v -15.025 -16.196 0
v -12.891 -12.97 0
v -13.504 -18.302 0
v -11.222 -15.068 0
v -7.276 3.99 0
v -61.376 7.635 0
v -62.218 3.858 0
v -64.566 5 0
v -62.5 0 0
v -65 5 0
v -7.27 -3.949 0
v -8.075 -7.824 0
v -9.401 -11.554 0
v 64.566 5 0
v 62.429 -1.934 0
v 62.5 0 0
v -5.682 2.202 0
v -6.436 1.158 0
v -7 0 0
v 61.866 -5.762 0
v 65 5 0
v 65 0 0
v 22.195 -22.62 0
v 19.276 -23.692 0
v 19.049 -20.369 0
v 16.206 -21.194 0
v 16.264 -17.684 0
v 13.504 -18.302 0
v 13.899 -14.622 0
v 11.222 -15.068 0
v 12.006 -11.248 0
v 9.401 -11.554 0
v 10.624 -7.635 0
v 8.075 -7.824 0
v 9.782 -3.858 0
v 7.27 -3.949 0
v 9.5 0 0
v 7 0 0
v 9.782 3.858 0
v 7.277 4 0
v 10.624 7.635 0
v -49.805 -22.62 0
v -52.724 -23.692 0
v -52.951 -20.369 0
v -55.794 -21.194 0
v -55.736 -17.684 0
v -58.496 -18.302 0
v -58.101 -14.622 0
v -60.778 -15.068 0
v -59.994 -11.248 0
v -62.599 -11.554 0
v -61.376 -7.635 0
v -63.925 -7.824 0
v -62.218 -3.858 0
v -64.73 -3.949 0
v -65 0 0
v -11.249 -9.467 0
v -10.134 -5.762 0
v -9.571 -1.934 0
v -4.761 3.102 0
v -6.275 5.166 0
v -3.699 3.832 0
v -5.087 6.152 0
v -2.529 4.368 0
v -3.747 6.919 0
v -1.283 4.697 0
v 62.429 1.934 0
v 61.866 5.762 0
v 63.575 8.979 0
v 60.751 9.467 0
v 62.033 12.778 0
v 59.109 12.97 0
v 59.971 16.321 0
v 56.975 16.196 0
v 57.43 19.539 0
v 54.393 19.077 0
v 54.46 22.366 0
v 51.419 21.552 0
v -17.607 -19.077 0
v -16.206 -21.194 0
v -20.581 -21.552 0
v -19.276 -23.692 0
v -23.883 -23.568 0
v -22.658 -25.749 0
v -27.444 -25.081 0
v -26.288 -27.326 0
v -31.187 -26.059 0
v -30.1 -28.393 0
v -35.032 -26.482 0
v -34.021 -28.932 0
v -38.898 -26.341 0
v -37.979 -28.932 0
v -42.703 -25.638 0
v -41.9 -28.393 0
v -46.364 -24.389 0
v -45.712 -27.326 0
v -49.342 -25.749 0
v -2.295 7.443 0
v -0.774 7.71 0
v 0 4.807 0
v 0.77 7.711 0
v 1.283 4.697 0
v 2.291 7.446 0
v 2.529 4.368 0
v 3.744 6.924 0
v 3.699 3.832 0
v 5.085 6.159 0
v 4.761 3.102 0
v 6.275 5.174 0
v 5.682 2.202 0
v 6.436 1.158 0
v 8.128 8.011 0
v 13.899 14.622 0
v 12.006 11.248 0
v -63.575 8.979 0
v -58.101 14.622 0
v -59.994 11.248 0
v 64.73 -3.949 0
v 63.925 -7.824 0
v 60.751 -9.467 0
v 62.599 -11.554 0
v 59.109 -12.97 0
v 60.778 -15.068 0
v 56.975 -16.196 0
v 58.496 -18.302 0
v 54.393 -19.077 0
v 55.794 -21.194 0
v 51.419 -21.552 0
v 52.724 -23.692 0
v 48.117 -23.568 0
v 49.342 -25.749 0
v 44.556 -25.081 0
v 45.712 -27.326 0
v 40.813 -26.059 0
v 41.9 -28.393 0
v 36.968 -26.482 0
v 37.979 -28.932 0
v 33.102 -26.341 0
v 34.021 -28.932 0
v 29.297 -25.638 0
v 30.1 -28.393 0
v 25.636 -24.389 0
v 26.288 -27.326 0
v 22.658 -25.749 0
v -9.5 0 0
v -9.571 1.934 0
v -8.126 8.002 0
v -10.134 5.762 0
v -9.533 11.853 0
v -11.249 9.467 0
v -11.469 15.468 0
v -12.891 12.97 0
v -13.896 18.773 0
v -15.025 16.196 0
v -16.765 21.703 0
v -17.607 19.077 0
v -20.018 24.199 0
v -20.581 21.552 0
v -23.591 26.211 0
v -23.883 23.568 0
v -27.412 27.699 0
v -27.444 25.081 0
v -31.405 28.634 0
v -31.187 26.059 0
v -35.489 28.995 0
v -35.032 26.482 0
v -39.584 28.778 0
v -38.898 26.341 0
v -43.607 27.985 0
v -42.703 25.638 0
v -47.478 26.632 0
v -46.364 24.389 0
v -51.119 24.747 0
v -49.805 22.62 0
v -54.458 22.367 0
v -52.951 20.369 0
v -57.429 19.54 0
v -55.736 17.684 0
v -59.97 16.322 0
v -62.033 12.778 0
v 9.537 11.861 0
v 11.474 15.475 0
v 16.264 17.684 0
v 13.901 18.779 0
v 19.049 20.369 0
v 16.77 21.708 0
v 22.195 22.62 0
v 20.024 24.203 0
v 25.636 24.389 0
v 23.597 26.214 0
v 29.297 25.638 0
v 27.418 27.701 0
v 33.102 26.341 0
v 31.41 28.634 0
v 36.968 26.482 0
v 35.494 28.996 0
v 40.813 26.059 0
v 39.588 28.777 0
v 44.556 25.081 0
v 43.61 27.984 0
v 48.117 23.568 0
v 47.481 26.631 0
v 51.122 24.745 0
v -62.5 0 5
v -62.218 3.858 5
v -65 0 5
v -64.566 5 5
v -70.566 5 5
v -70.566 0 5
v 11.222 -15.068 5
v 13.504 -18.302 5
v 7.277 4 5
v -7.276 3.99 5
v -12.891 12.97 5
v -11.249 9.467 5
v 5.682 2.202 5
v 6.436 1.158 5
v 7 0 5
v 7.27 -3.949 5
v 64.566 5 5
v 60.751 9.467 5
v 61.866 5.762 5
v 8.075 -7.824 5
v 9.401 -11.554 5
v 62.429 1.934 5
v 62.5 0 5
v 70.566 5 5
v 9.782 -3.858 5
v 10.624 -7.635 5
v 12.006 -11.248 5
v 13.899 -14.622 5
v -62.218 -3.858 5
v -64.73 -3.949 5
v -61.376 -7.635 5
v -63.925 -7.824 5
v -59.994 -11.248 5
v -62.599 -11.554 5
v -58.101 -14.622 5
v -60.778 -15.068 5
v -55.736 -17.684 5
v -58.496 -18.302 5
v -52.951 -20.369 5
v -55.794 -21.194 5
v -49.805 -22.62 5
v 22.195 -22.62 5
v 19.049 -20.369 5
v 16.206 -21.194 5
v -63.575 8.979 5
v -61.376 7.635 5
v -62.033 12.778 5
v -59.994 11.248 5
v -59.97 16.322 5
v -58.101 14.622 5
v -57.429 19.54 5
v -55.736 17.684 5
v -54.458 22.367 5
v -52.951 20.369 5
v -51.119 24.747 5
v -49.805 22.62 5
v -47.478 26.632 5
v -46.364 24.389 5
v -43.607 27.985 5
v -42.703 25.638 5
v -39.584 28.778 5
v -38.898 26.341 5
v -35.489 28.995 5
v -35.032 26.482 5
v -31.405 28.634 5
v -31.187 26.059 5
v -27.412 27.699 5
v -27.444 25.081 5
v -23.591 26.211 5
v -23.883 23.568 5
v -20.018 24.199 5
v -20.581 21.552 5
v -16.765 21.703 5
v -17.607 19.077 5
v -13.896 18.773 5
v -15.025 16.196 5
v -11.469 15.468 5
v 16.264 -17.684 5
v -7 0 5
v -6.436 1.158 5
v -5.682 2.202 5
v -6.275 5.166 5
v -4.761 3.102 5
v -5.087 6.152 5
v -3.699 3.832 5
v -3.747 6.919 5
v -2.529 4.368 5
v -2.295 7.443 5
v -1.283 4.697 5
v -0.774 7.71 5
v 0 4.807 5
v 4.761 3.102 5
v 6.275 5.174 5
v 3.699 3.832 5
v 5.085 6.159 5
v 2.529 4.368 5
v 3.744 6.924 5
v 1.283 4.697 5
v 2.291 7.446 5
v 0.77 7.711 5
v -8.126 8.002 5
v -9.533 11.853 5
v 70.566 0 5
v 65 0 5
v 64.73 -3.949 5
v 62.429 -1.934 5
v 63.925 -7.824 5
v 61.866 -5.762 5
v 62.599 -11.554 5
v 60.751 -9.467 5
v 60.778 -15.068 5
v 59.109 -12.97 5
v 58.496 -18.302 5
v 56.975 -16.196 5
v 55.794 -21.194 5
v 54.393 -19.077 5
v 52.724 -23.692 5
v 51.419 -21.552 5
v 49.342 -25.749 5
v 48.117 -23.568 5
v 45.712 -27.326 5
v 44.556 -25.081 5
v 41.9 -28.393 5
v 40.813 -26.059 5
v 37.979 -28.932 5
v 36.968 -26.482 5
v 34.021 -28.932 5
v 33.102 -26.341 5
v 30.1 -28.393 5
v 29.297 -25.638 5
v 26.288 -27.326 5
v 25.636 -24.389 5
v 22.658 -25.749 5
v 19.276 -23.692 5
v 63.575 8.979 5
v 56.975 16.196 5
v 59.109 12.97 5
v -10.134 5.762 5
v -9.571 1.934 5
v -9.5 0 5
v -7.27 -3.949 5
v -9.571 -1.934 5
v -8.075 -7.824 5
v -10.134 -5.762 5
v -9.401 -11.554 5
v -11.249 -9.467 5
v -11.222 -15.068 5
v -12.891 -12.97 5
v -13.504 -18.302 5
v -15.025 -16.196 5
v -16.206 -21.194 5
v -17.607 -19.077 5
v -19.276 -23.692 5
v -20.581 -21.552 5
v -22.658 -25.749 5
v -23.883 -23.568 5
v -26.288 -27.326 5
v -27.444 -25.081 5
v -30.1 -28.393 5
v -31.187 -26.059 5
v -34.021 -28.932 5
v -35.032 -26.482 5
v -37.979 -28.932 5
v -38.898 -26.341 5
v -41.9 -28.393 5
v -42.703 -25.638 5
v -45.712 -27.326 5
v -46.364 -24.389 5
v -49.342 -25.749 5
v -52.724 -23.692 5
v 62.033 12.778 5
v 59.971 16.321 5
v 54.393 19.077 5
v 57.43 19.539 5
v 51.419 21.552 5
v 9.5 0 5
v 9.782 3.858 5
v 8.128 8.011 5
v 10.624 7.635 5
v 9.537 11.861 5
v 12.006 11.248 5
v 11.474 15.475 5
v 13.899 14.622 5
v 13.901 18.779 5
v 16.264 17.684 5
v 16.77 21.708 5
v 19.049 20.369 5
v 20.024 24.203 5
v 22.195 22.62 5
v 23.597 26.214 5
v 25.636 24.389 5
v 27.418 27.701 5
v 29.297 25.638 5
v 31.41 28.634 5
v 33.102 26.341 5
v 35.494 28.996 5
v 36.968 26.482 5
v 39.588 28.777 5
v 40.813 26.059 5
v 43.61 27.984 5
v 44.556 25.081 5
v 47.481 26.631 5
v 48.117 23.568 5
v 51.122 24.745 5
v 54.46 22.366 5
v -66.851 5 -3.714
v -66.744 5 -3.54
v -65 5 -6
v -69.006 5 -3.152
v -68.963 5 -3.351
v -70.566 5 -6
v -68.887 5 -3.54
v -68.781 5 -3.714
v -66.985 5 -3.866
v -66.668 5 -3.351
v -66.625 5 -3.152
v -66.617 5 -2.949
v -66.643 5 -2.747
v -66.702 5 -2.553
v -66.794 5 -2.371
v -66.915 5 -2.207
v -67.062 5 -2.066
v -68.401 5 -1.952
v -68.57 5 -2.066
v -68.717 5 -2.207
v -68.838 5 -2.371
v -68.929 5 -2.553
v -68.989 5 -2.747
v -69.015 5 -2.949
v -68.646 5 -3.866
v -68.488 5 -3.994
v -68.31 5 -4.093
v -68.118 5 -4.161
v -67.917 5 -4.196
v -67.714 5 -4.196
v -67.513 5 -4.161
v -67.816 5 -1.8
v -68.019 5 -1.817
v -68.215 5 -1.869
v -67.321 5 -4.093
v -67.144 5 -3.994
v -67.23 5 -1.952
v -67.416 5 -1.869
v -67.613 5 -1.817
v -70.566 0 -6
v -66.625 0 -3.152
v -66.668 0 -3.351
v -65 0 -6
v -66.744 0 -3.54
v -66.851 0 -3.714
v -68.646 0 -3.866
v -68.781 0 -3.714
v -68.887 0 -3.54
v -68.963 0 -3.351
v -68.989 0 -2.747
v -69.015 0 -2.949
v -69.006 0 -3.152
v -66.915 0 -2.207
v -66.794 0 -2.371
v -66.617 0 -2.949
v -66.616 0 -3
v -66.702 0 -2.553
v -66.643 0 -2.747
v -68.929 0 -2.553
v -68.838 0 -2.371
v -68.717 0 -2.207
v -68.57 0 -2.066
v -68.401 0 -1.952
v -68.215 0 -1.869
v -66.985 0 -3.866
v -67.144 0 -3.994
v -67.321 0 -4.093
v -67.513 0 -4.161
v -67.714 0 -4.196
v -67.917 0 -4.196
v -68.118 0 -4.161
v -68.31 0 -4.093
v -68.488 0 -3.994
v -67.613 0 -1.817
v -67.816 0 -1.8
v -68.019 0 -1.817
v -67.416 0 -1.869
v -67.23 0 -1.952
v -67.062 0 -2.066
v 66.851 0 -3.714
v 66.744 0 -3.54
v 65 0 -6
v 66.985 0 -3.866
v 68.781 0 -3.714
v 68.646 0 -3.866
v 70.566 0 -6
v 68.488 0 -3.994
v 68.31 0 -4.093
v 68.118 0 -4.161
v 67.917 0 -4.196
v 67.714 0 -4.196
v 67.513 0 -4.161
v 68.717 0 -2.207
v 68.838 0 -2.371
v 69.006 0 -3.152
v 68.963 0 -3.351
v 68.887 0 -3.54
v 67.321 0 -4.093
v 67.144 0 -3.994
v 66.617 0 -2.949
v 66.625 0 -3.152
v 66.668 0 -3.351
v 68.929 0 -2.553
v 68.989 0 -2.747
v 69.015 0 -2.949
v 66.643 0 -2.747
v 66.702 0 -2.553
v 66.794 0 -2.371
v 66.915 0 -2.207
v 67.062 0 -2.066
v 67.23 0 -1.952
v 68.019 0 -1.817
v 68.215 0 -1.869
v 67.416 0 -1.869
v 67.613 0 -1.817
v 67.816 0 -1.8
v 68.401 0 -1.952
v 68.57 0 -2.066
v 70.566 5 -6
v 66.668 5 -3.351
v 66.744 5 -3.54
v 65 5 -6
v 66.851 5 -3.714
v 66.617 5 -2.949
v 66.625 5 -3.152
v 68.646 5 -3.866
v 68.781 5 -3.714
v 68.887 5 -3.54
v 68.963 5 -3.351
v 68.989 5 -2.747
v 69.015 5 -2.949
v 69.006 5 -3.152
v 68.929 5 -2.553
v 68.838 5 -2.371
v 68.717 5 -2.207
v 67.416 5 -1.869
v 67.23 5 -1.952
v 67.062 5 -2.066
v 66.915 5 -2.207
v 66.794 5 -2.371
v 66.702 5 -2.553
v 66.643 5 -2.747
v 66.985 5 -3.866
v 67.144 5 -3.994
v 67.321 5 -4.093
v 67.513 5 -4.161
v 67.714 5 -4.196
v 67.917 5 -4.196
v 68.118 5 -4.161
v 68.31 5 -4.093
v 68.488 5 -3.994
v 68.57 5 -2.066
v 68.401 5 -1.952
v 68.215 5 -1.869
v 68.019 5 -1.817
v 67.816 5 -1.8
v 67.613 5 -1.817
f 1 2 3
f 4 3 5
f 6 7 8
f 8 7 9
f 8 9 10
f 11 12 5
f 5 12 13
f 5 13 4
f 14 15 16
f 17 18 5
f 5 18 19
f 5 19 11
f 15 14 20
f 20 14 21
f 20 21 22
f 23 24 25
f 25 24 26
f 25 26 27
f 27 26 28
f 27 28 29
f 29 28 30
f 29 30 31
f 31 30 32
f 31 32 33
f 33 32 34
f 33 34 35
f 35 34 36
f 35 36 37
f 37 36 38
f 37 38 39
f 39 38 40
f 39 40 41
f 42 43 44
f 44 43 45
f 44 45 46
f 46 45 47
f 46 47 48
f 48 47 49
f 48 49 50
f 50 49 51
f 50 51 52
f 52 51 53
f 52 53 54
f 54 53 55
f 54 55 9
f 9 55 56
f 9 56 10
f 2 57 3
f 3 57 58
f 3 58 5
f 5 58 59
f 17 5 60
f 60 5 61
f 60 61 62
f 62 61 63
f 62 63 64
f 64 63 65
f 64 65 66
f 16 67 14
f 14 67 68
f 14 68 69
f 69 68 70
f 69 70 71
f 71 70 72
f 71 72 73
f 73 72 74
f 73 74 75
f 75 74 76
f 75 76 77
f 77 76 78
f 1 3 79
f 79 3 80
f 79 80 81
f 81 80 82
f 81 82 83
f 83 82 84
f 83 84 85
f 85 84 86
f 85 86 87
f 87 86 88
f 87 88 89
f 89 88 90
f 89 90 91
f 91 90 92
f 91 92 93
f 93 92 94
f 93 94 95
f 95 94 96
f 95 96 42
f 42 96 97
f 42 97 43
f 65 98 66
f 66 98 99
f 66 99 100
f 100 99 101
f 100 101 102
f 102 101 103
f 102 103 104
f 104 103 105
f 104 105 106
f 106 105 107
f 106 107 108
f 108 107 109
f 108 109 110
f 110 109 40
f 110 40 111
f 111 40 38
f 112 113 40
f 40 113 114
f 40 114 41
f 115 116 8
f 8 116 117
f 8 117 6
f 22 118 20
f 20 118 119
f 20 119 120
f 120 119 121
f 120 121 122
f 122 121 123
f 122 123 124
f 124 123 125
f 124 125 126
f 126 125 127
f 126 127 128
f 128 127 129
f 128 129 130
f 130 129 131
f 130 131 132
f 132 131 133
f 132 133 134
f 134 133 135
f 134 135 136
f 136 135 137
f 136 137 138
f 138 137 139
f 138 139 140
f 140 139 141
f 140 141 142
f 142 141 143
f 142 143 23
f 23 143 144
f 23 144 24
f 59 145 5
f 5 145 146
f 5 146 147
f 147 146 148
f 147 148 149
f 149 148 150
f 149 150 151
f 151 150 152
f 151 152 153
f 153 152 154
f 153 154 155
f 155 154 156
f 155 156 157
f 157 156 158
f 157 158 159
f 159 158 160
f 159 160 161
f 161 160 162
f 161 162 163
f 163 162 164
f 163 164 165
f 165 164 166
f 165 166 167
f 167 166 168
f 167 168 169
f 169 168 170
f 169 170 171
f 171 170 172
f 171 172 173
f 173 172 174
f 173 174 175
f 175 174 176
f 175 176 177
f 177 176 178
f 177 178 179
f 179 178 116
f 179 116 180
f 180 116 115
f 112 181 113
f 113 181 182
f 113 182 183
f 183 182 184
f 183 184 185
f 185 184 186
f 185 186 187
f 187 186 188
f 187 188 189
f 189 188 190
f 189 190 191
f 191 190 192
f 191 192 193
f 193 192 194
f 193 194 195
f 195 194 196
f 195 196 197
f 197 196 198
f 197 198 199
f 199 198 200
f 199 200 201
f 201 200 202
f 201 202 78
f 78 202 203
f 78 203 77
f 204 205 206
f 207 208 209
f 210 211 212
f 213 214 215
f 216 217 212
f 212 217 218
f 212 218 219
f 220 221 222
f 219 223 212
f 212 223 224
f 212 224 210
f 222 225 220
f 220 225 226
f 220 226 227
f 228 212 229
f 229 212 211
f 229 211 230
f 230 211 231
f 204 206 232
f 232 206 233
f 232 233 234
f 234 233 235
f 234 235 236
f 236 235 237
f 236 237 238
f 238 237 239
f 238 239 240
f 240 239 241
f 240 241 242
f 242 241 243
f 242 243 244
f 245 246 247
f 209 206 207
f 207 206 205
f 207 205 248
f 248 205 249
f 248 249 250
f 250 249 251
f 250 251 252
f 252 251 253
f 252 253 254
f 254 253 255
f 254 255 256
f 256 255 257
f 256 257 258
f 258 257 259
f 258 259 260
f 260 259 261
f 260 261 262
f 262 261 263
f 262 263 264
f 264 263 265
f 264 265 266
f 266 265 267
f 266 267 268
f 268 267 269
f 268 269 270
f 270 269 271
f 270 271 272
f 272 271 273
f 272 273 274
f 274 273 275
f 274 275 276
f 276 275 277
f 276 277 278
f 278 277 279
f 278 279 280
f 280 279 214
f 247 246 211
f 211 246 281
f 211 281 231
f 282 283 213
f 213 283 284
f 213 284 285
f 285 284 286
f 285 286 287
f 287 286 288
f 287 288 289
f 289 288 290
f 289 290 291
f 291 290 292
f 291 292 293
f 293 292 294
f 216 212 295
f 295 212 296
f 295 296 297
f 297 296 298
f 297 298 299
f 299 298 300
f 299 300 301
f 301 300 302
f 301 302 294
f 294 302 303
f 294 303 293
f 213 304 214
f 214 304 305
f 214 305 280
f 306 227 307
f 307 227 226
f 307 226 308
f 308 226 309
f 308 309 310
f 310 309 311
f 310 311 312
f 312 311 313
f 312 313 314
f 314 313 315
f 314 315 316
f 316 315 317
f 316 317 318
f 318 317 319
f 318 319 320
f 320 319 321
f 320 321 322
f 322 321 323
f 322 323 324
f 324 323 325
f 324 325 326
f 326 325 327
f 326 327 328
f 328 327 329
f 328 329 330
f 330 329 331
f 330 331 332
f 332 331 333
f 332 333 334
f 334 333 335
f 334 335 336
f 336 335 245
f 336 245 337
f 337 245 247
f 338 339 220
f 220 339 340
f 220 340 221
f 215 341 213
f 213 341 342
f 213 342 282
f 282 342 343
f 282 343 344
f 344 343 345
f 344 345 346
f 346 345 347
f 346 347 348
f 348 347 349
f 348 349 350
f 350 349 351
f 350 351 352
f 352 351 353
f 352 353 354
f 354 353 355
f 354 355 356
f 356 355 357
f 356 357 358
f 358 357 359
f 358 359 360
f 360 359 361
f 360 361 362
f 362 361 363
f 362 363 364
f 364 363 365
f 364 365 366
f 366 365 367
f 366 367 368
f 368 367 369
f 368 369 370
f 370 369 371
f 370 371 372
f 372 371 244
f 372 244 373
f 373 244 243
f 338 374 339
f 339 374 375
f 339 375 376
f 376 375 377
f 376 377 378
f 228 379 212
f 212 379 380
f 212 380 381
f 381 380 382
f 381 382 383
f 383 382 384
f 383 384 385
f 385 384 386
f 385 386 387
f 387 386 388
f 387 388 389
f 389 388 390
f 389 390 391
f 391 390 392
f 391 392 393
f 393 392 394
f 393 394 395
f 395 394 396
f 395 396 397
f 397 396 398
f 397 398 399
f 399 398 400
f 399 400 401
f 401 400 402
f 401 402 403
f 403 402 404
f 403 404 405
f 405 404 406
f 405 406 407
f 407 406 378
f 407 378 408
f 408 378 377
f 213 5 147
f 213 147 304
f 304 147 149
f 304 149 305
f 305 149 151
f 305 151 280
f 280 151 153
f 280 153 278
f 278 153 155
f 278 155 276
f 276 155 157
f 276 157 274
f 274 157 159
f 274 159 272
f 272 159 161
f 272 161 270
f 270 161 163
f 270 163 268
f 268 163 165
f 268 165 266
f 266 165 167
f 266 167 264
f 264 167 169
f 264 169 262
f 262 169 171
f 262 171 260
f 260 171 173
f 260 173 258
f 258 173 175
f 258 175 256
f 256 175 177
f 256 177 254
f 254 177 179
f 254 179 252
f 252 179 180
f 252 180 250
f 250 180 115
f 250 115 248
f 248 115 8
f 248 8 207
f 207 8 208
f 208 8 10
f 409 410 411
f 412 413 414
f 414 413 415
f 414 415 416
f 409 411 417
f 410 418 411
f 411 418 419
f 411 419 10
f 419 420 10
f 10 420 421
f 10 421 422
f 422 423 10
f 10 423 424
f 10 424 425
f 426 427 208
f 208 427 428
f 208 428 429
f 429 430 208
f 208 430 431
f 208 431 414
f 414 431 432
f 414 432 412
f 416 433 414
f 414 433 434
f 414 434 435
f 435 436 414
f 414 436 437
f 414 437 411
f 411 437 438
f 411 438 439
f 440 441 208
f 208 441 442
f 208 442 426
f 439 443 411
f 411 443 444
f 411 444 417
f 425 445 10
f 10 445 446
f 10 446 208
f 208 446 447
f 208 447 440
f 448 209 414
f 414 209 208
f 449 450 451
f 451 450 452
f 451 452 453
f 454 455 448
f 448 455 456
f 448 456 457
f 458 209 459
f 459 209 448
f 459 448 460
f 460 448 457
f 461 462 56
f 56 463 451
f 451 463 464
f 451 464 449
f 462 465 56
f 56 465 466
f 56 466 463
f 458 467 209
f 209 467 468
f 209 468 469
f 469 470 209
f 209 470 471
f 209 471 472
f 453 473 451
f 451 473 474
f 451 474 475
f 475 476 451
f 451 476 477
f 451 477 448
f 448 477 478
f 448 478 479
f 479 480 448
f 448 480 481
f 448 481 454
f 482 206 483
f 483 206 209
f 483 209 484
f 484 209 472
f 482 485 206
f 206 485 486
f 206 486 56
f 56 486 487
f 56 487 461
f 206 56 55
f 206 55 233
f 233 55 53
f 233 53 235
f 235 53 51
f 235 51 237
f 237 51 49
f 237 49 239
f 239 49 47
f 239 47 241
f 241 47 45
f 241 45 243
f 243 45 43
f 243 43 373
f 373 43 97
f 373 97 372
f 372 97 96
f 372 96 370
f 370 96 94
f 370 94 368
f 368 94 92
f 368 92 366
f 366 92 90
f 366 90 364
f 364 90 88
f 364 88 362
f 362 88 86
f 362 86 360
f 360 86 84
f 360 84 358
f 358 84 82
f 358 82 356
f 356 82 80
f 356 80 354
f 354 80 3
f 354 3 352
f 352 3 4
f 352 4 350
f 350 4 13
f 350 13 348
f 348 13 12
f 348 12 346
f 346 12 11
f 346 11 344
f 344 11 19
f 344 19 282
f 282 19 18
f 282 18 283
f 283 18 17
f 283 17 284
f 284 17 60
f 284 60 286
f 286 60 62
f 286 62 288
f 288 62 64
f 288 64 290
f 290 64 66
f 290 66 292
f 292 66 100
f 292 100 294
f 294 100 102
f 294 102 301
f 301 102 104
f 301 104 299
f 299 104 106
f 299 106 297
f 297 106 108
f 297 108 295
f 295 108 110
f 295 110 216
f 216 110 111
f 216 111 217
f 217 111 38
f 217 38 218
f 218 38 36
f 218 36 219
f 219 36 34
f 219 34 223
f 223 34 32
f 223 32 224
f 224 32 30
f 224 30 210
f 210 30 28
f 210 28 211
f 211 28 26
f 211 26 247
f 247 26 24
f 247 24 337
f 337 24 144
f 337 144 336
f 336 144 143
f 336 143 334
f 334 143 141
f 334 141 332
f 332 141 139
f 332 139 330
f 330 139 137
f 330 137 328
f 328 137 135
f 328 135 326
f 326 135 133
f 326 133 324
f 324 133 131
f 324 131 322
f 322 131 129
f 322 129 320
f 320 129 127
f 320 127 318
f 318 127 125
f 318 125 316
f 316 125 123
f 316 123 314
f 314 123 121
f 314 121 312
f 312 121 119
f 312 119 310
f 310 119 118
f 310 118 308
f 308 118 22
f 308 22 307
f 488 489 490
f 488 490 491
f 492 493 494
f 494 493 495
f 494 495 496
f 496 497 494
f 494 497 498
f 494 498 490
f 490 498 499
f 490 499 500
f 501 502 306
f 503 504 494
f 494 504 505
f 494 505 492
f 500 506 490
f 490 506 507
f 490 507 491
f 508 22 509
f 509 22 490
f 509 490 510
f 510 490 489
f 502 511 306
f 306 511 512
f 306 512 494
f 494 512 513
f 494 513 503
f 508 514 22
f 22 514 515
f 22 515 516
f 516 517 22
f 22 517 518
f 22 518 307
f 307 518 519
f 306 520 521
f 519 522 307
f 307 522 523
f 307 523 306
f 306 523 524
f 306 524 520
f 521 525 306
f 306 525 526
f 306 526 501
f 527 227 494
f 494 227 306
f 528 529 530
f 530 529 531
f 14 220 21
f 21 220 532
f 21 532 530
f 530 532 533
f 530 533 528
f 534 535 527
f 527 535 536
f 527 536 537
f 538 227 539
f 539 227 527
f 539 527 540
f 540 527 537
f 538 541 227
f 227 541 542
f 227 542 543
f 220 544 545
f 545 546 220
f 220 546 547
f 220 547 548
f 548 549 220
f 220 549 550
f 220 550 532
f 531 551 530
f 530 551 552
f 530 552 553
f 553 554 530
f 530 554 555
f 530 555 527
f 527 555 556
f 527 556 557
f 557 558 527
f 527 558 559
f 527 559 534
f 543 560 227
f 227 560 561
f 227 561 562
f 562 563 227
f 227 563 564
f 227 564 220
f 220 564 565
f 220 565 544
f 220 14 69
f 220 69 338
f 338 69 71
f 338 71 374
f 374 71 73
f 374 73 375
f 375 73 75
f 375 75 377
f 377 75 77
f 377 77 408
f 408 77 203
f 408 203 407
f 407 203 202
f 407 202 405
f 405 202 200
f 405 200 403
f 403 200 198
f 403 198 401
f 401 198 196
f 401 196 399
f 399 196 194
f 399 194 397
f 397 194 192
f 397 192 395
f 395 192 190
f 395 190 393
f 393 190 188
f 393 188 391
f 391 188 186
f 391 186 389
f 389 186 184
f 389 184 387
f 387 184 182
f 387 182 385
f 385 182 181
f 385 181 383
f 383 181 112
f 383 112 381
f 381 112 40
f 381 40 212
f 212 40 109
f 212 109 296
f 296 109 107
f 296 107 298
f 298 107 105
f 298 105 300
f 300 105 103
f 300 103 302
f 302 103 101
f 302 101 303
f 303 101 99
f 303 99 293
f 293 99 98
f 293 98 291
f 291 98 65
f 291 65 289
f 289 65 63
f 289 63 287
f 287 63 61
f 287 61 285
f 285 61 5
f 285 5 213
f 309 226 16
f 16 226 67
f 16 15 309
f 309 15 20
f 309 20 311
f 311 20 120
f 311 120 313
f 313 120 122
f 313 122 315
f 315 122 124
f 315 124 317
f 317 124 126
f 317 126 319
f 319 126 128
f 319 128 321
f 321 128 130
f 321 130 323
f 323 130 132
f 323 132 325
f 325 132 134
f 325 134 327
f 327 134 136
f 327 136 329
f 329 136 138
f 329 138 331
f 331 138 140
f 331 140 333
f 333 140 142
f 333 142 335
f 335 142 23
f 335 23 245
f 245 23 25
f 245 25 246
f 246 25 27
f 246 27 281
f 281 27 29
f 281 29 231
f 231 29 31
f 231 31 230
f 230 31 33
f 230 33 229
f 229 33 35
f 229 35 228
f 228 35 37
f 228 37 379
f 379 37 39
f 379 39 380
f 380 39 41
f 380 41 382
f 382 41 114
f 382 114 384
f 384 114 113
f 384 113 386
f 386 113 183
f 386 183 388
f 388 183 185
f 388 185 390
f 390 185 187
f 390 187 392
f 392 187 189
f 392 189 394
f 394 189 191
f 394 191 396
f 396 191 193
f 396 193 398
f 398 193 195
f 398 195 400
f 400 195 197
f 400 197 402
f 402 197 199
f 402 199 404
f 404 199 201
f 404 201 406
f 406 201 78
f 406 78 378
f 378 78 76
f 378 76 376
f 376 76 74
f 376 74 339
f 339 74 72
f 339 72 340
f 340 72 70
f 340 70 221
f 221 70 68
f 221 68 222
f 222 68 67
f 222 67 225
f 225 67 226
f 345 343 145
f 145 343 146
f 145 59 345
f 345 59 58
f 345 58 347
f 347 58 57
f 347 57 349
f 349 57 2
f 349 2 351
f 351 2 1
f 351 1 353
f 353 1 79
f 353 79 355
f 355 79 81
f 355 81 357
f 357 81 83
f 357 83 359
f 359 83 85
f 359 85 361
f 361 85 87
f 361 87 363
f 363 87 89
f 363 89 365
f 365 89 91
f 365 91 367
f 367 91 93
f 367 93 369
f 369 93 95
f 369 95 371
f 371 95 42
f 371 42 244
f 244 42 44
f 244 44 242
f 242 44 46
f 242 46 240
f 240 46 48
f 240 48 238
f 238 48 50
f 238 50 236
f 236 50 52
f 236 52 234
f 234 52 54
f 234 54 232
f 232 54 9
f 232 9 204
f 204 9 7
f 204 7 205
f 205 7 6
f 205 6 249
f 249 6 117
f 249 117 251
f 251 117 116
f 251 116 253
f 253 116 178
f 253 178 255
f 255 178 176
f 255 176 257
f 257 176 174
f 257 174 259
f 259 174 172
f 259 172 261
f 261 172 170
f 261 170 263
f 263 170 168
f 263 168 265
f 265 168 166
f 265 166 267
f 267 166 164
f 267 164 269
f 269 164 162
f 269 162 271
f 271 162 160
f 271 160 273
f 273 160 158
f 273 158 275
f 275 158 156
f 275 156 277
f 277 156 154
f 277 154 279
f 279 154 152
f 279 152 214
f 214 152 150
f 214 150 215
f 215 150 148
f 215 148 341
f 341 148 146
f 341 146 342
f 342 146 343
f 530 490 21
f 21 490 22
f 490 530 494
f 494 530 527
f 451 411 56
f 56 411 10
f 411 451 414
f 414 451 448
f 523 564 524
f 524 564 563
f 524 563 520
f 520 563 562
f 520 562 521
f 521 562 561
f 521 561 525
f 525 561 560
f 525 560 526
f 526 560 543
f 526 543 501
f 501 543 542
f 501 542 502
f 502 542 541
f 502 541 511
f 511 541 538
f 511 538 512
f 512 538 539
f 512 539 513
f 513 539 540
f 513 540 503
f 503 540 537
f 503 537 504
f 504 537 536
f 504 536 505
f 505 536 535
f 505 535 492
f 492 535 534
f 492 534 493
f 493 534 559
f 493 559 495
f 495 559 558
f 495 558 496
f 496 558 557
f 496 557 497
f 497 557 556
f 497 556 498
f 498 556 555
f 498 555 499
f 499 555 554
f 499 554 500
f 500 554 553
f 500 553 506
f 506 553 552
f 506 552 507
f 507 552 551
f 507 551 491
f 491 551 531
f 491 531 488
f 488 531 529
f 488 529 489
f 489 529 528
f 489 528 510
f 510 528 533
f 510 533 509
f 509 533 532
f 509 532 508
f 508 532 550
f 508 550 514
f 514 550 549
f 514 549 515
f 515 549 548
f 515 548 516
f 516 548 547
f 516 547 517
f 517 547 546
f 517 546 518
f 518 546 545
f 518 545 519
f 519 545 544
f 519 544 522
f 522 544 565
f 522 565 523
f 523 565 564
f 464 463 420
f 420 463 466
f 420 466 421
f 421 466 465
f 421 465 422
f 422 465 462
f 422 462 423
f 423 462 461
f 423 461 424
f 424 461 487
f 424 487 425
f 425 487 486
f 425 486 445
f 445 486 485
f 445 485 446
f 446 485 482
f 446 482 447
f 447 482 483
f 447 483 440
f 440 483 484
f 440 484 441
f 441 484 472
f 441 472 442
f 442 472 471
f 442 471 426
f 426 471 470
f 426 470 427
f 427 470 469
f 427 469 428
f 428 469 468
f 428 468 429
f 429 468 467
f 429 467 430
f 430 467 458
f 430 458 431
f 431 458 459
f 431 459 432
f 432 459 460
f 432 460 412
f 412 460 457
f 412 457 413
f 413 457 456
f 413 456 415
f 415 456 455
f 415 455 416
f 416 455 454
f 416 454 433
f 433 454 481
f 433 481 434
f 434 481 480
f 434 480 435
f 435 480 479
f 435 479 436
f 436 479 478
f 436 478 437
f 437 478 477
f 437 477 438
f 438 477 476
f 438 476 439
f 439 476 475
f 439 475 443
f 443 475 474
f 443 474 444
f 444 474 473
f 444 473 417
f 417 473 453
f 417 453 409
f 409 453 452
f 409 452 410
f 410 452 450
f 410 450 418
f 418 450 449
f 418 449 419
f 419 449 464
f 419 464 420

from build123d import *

# Parameters (mm, degrees)
SKIZZE1_R                       = 26.5
AUFSATZ_LINEAR_AUSTRAGEN1_DEPTH = 5
SKIZZE2_W                       = 5.565713714
SKIZZE2_H                       = 5
AUFSATZ_LINEAR_AUSTRAGEN2_DEPTH = 6
DURCHGANGSLOCH_F_R_M21_D        = 2.4


with BuildPart() as part:
    # Skizze1 → Aufsatz-Linear austragen1 (new body)
    with BuildSketch(Plane.XY):
        with BuildLine():
            Line((70.565713714, 5), (64.565713714, 5))
            ThreePointArc((64.565713714, 5), (35.493867542, 28.995582938), (7.277186767, 4))
            ThreePointArc((7.277186767, 4), (-0.001790997, 7.744118326), (-7.275862069, 3.990476177))
            ThreePointArc((-7.275862069, 3.990476177), (-35.489060527, 28.995498631), (-64.565713714, 5))
            Line((-64.565713714, 5), (-70.565713714, 5))
            Line((-70.565713714, 5), (-70.565713714, 0))
            Line((-70.565713714, 0), (-65, 0))
            ThreePointArc((-65, 0), (-36, -29), (-7, 0))
            ThreePointArc((-7, 0), (0, 4.807417596), (7, 0))
            ThreePointArc((7, 0), (36, -29), (65, 0))
            Line((65, 0), (70.565713714, 0))
            Line((70.565713714, 0), (70.565713714, 5))
        make_face()
        with Locations((36, 0)):
            Circle(SKIZZE1_R, mode=Mode.SUBTRACT)
        with Locations((-36, 0)):
            Circle(SKIZZE1_R, mode=Mode.SUBTRACT)
    extrude(amount=AUFSATZ_LINEAR_AUSTRAGEN1_DEPTH)

    # Skizze2 → Aufsatz-Linear austragen2 (add)
    with BuildSketch(Plane(origin=(0, 0, 0), x_dir=(-1, 0, 0), z_dir=(0, 0, -1))):
        with Locations((-67.782856857, 2.5)):
            Rectangle(SKIZZE2_W, SKIZZE2_H)
        with Locations((67.782856857, 2.5)):
            Rectangle(SKIZZE2_W, SKIZZE2_H)
    extrude(amount=AUFSATZ_LINEAR_AUSTRAGEN2_DEPTH)

    # Durchgangsloch für M21 (through all)
    with Locations(Plane(origin=(0, 5, 0), x_dir=(1, 0, 0), z_dir=(0, 1, 0))):
        with Locations((-67.815713714, 3), (67.815713714, 3)):
            Hole(DURCHGANGSLOCH_F_R_M21_D / 2)


solid = part.part
